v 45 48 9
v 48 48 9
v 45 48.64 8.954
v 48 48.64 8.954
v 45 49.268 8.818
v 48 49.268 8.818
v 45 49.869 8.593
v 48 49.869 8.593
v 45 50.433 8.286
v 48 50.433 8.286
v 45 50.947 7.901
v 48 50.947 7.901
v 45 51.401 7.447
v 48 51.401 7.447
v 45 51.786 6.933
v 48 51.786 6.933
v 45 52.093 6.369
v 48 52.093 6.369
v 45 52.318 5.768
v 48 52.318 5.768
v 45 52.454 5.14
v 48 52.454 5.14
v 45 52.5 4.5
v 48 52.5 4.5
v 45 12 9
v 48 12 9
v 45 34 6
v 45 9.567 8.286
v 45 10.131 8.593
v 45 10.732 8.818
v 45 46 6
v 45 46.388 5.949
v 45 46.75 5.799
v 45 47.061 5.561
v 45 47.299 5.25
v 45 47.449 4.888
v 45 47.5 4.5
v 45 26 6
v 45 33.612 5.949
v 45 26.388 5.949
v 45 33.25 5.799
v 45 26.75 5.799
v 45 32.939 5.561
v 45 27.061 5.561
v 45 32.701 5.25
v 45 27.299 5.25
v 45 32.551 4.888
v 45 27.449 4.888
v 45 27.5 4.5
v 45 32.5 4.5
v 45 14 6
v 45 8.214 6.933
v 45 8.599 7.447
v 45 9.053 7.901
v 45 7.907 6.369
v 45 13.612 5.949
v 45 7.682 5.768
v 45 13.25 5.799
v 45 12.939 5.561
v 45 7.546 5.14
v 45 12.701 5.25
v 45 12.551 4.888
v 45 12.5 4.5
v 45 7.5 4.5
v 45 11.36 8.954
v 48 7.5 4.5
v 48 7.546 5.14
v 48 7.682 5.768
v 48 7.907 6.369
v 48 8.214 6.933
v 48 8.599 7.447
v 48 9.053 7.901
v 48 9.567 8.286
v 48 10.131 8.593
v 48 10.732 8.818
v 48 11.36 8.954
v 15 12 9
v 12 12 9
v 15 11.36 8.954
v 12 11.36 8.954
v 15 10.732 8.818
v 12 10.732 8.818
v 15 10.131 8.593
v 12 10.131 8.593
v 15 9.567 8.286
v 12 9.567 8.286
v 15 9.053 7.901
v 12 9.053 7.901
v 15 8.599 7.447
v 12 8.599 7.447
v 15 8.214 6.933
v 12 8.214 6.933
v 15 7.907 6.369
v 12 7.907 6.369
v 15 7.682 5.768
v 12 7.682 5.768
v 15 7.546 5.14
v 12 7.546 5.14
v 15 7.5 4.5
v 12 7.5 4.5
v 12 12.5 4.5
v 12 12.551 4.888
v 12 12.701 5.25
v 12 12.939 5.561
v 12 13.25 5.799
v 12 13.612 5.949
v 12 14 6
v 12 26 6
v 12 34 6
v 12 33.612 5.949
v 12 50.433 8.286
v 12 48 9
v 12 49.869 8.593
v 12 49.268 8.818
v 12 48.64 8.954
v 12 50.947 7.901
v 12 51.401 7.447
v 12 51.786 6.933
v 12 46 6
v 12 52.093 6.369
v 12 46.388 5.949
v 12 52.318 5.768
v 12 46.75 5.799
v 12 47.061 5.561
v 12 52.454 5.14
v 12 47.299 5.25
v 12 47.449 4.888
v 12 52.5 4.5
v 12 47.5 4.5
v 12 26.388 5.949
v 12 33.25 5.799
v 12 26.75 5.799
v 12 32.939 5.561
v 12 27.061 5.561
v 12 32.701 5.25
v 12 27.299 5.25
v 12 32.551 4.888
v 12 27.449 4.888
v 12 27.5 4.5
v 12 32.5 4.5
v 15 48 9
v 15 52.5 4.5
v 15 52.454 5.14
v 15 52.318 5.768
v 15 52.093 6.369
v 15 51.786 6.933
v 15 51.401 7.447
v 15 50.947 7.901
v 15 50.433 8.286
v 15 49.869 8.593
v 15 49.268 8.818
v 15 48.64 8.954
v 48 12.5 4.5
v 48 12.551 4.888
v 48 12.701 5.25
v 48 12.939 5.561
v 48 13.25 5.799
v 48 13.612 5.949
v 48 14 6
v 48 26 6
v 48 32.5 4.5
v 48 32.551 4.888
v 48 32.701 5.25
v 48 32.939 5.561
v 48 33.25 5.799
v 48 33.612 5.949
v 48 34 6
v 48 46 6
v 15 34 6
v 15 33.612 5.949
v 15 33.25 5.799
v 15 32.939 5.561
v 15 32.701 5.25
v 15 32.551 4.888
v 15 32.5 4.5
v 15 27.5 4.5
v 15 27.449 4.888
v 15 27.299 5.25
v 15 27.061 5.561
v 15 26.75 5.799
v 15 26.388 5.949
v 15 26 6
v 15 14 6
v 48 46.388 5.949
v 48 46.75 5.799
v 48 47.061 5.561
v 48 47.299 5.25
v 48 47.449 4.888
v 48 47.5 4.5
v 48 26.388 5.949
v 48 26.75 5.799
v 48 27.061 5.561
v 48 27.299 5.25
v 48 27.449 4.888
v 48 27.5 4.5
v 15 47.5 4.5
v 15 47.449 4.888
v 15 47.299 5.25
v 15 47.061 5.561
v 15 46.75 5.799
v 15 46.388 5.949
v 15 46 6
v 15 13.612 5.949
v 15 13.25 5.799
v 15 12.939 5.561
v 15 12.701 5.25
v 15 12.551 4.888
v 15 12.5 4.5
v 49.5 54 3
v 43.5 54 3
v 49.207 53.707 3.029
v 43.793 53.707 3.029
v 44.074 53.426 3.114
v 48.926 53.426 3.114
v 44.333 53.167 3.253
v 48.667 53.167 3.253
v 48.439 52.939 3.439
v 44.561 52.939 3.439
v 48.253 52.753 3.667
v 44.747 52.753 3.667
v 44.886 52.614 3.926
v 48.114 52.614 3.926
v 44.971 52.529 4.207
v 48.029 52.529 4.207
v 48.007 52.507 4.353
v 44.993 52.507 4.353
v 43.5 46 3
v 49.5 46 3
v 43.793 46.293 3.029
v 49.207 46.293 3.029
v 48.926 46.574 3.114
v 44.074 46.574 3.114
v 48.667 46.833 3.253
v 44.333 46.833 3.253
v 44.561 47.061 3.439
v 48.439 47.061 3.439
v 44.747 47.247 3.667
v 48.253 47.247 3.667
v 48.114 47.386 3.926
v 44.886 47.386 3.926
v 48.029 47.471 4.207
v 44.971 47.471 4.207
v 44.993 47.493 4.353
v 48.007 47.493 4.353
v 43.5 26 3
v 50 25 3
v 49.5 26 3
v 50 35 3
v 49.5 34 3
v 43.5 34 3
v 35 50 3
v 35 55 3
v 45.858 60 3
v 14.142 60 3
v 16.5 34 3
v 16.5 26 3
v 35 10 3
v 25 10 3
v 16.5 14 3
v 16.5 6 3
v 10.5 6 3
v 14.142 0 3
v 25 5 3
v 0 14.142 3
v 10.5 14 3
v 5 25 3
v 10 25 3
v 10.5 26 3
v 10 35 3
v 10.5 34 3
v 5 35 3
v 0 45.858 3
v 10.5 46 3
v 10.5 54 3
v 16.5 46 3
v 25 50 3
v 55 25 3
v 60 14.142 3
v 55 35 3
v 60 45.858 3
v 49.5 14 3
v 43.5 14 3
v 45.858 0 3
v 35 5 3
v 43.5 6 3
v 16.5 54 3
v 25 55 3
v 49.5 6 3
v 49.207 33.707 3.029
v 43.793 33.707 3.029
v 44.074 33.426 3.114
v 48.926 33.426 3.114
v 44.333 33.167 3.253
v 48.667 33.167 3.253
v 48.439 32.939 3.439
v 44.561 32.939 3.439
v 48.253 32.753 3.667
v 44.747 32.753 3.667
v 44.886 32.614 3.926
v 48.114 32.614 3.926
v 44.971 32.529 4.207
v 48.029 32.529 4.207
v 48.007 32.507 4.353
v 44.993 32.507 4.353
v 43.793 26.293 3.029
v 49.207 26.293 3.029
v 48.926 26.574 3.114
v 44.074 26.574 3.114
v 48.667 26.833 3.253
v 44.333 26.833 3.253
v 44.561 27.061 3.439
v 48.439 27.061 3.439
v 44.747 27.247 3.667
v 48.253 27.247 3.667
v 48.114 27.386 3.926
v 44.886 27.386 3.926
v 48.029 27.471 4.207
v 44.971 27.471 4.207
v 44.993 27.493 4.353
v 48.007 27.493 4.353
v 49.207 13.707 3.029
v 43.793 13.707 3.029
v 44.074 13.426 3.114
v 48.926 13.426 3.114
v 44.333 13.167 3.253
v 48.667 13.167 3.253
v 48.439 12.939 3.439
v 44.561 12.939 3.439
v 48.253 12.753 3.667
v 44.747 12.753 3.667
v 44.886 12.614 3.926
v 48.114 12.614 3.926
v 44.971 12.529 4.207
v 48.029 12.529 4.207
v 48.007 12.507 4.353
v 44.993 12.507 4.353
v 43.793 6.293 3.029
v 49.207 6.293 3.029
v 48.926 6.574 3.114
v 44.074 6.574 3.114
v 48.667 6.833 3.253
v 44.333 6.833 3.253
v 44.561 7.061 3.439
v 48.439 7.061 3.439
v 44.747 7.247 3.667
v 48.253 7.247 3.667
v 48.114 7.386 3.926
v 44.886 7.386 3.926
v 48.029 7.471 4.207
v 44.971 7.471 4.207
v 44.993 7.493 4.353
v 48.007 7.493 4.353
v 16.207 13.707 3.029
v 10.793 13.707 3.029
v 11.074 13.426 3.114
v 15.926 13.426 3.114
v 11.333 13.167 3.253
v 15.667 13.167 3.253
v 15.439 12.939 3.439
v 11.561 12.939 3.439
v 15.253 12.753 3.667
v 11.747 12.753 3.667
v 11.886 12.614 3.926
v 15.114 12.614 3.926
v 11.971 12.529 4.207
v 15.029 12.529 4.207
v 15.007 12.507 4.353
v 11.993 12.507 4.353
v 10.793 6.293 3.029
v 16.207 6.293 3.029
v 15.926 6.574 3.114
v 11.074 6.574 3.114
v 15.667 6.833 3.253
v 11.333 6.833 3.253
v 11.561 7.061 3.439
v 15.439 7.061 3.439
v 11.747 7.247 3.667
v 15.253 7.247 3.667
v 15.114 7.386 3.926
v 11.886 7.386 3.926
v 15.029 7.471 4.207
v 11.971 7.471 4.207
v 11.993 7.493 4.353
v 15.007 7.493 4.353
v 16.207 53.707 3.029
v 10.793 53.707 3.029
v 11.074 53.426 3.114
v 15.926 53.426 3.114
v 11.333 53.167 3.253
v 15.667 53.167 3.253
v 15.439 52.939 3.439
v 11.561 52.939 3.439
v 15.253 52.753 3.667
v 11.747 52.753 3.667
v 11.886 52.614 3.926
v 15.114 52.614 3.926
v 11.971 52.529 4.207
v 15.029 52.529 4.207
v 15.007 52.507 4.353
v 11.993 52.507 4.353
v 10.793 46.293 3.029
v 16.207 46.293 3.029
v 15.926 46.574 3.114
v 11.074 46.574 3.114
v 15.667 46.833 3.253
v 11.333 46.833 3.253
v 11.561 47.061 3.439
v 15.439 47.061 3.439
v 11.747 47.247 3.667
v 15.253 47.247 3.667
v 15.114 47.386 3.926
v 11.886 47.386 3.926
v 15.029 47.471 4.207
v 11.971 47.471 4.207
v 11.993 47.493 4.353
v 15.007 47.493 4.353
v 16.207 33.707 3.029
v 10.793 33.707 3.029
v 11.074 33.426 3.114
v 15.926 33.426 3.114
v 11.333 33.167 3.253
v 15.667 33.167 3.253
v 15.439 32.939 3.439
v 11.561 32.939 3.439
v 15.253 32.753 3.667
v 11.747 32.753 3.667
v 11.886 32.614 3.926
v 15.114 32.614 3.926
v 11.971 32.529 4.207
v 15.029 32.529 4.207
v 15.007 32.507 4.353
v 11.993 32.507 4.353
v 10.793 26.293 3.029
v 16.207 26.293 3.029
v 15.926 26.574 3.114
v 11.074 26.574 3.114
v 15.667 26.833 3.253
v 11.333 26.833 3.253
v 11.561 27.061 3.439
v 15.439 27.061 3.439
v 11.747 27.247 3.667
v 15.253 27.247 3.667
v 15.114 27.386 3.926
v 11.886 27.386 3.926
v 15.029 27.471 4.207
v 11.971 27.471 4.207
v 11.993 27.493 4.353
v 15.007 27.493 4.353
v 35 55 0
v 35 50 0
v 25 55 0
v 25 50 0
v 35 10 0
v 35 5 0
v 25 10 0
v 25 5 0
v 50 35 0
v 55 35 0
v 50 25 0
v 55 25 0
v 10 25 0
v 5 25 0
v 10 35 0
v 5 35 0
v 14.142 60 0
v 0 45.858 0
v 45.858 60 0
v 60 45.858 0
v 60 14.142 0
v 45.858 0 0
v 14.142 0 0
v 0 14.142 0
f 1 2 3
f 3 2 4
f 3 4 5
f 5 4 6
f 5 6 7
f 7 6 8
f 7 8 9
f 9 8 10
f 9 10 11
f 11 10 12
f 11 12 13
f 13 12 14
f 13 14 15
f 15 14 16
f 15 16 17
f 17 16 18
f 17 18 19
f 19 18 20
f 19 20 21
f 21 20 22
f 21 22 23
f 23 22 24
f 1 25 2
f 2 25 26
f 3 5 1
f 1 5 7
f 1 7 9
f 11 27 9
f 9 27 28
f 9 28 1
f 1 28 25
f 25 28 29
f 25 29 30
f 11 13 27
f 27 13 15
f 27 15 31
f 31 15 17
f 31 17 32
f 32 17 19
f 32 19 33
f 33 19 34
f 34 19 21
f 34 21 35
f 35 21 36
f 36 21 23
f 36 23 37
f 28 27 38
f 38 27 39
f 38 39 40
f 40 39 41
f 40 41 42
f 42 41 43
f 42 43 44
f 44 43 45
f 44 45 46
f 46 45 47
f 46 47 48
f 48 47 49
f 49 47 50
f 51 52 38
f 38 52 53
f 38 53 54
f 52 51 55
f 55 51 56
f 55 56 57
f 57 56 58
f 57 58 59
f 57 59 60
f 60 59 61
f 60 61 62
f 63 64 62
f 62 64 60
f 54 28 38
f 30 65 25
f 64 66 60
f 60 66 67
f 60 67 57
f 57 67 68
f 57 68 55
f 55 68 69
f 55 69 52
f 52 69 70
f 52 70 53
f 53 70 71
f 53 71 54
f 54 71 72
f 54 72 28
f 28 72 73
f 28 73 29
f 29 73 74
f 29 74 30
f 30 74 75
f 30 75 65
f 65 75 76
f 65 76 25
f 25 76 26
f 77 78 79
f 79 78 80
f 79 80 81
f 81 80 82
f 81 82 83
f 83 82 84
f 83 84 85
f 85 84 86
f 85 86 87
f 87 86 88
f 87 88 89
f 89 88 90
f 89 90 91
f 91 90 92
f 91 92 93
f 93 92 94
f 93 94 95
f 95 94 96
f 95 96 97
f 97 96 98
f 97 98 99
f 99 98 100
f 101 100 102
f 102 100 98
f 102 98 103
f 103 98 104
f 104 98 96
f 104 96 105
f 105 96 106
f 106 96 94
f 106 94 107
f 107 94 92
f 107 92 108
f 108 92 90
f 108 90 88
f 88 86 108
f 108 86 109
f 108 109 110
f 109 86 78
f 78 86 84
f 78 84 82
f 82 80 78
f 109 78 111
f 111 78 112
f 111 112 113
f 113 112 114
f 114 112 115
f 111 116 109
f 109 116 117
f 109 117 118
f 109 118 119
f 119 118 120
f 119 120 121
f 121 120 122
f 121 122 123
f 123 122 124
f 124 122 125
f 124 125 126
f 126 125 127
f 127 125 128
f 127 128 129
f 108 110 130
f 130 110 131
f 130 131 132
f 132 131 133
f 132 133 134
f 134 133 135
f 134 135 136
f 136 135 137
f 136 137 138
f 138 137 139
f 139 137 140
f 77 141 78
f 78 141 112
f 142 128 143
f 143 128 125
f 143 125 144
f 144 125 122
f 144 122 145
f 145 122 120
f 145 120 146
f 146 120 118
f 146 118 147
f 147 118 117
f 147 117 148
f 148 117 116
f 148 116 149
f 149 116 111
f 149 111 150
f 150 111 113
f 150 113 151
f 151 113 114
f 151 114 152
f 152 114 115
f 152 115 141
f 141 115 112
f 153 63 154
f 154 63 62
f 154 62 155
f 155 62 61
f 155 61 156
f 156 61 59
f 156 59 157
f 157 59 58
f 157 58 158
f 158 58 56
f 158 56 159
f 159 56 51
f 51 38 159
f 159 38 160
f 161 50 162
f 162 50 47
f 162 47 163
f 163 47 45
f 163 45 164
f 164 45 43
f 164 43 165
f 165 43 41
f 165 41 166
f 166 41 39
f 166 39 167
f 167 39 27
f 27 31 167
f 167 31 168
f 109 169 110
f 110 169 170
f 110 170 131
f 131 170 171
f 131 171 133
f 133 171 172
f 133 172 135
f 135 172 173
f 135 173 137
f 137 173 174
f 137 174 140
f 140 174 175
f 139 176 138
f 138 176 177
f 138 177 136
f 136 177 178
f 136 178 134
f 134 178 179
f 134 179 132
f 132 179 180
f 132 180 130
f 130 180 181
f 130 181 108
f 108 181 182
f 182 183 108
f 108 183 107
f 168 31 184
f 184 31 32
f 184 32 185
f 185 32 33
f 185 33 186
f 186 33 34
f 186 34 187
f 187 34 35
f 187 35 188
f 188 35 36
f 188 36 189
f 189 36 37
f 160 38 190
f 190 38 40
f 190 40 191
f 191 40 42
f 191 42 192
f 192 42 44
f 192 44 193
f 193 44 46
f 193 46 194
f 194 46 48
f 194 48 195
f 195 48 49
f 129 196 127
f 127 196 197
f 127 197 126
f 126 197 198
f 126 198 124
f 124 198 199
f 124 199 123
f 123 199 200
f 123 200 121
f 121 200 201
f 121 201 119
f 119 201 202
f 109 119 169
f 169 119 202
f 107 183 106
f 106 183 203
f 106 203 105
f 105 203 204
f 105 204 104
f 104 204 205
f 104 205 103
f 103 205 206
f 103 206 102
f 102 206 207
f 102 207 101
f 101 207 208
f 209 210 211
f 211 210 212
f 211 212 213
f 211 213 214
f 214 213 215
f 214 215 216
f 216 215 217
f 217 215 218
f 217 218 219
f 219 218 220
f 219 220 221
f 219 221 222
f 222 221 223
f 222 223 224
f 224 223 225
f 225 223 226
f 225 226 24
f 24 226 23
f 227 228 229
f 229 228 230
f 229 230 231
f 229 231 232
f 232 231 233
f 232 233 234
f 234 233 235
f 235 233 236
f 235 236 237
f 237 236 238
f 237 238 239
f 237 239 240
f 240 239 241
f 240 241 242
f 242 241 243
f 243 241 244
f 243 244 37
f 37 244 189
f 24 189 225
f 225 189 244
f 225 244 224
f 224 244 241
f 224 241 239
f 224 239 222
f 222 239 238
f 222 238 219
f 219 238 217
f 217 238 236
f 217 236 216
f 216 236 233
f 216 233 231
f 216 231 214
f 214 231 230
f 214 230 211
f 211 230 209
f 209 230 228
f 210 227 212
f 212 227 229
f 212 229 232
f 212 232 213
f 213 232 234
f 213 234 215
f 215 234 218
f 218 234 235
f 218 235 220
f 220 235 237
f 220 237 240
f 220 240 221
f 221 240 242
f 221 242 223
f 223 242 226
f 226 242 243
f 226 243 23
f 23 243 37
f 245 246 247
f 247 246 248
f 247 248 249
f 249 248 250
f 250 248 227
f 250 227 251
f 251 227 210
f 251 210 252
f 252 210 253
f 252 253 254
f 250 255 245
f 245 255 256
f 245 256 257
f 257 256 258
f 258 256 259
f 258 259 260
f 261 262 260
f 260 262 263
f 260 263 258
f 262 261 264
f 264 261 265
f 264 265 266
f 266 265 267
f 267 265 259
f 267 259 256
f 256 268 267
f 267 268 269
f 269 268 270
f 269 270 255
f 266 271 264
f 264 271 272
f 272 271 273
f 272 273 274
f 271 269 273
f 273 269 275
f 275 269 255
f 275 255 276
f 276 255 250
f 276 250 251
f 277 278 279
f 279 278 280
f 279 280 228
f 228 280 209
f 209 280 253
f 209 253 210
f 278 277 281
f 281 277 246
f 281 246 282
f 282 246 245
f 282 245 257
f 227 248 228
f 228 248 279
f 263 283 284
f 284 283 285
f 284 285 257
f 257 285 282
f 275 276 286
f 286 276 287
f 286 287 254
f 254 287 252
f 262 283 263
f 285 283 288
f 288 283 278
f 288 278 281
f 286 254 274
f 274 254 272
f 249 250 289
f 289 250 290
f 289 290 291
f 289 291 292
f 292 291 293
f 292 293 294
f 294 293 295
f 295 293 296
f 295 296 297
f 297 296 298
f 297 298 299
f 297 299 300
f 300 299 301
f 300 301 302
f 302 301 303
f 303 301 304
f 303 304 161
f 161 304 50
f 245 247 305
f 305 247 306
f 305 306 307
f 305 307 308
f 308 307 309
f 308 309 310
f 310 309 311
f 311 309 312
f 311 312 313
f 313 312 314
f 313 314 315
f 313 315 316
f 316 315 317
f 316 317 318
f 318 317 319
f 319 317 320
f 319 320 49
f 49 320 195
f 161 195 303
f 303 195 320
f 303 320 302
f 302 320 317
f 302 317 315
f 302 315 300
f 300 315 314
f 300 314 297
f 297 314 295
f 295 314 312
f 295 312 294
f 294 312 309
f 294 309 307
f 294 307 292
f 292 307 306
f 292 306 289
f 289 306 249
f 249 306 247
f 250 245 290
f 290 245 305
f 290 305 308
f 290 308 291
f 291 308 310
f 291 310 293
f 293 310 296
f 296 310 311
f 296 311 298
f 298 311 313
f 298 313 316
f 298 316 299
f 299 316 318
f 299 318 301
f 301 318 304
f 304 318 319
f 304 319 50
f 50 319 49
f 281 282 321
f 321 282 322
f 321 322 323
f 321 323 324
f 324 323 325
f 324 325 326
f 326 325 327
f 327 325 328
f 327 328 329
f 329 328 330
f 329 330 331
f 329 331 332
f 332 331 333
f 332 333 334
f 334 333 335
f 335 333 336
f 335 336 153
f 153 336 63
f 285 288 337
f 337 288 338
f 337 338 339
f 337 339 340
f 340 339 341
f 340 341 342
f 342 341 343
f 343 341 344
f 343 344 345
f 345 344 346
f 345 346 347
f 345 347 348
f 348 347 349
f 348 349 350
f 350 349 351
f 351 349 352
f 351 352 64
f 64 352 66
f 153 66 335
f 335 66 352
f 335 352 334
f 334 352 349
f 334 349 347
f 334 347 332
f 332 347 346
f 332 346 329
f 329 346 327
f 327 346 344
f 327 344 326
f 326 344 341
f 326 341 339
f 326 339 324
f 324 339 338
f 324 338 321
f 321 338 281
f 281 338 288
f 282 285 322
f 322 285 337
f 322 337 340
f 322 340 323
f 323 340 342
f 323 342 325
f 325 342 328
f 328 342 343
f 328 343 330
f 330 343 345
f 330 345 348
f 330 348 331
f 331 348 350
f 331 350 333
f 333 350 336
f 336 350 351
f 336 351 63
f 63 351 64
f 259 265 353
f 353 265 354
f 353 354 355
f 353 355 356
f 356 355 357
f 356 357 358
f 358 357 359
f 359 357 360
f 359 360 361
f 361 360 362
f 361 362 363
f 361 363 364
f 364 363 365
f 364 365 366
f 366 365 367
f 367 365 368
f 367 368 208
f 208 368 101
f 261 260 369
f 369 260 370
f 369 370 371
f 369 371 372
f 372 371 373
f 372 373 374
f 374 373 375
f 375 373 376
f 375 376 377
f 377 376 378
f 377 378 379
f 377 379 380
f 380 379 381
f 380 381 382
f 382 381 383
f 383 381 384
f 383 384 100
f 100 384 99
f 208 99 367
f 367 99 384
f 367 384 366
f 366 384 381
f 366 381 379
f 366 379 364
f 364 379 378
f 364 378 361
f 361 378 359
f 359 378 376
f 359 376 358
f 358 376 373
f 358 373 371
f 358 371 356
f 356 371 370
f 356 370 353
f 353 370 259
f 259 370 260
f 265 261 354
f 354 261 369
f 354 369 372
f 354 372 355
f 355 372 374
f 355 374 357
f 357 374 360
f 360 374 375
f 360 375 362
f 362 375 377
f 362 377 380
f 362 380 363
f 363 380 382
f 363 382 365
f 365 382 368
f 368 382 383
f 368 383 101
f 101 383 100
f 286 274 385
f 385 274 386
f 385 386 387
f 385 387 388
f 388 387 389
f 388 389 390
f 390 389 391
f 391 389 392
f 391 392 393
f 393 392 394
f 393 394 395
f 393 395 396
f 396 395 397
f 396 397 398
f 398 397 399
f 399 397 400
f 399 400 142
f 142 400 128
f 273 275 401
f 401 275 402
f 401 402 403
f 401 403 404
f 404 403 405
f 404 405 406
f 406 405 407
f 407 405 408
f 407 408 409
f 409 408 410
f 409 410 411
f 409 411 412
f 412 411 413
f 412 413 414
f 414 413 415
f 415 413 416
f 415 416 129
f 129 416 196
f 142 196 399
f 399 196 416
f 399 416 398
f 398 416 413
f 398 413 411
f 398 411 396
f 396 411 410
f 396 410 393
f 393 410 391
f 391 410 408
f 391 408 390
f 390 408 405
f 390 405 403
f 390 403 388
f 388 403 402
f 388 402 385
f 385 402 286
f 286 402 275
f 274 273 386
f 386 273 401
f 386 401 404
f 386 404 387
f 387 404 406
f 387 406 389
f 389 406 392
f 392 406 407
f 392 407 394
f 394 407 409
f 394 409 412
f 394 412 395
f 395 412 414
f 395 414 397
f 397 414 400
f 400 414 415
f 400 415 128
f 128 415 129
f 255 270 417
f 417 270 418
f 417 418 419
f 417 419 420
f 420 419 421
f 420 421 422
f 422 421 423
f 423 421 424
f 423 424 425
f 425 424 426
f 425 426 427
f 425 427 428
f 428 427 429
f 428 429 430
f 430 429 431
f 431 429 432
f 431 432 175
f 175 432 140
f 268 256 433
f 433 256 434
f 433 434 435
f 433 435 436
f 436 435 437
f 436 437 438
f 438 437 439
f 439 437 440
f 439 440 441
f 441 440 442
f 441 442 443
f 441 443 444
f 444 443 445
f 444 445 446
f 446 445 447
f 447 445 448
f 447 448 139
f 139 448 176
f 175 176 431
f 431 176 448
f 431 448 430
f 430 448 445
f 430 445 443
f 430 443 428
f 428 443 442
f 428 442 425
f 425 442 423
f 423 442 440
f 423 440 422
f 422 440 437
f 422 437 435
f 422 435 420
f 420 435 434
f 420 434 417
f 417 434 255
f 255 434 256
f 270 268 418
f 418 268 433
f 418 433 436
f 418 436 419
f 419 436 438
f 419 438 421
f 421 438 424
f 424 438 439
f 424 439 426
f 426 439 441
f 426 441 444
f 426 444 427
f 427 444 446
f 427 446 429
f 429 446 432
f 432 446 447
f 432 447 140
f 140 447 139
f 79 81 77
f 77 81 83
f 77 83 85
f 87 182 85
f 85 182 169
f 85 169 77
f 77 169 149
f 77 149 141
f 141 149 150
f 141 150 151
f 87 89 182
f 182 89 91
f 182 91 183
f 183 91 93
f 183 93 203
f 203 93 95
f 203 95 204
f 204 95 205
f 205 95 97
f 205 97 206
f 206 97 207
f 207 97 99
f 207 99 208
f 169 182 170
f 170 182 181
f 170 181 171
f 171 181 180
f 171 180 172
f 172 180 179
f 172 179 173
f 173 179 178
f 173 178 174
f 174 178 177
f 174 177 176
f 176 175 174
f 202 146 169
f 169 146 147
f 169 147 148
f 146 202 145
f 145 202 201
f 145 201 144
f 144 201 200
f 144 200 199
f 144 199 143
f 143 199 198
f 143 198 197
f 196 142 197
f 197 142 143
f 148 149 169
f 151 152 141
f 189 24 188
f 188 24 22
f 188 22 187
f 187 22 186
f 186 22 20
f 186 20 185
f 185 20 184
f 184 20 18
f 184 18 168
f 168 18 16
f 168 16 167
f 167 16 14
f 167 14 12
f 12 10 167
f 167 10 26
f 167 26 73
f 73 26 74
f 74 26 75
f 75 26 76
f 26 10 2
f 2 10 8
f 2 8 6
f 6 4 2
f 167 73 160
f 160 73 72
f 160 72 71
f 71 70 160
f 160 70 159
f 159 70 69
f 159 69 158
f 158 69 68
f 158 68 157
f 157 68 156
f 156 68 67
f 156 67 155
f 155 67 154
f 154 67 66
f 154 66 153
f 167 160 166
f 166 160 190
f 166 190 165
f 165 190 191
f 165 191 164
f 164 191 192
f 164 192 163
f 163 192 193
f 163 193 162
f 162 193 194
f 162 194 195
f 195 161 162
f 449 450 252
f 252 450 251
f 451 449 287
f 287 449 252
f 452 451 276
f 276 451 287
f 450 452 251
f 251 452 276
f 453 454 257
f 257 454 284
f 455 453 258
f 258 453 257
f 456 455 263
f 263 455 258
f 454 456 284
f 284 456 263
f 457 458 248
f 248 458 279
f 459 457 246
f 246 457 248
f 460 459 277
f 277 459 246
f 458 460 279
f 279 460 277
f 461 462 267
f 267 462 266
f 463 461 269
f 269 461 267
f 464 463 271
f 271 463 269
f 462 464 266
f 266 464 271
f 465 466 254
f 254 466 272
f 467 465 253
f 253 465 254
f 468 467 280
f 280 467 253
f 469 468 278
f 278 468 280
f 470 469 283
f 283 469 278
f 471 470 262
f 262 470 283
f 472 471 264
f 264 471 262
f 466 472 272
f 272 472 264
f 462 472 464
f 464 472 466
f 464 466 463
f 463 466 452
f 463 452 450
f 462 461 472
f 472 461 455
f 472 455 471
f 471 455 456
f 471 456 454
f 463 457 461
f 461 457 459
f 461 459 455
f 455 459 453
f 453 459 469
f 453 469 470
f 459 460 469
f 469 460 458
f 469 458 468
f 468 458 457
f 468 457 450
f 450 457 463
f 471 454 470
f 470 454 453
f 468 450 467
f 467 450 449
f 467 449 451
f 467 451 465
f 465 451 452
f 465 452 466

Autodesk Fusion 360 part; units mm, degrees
sketch "Sketch1" plane through (0, 0, 0) normal (0, 0, 1) x (1, 0, 0)
  line L0 (0, 0) -> (60, 0)
  line L1 (60, 0) -> (60, 60)
  line L2 (60, 60) -> (0, 60)
  line L3 (0, 60) -> (0, 0)
  line L4 (0, 45.8579) -> (14.1421, 60)
  line L5 (0, 45.8579) -> (19.799, 45.8579) construction
  line L6 (14.1421, 0) -> (0, 14.1421)
  line L7 (14.1421, 0) -> (24.1421, 0) construction
  line L8 (60, 14.1421) -> (45.8579, 0)
  line L9 (60, 14.1421) -> (83.1045, 14.1421) construction
  line L10 (45.8579, 60) -> (60, 45.8579)
  line L11 (0, 30) -> (60, 30) construction
  line L12 (30, 60) -> (30, 0) construction
  line L13 (25, 55) -> (35, 55)
  line L14 (35, 55) -> (35, 50)
  line L15 (35, 50) -> (25, 50)
  line L16 (25, 50) -> (25, 55)
  line L17 (5, 25) -> (5, 35)
  line L18 (10, 35) -> (10, 25)
  line L19 (10, 25) -> (5, 25)
  line L20 (5, 35) -> (10, 35)
  line L21 (35, 5) -> (25, 5)
  line L22 (25, 10) -> (35, 10)
  line L23 (35, 10) -> (35, 5)
  line L24 (25, 5) -> (25, 10)
  line L25 (55, 35) -> (55, 25)
  line L26 (50, 25) -> (50, 35)
  line L27 (50, 35) -> (55, 35)
  line L28 (55, 25) -> (50, 25)
  point P0 (30, 30)
  dimension "d1" = 60
  dimension "d2" = 60
  dimension "d3" = 45
  dimension "d4" = 135
  dimension "d5" = 135
  dimension "d6" = 90
  dimension "d7" = 20
  dimension "d8" = 10
  dimension "d9" = 5
  dimension "d10" = 5
  dimension "d11" = 20
  dimension "d13" = 360
extrude "Extrude1" add sketch "Sketch1" along normal blind 3 contours L0 L1 L2 L3 L4 L6 L8 L10
sketch "Sketch2" plane through (0, 0, 3) normal (0, 0, 1) x (-1, 0, 0)
  line L0 (-5, -25) -> (-5, -35)
  line L1 (-5, -35) -> (-10, -35)
  line L2 (-10, -35) -> (-10, -25)
  line L3 (-10, -25) -> (-5, -25)
  line L4 (-55, -35) -> (-55, -25)
  line L5 (-55, -25) -> (-50, -25)
  line L6 (-50, -25) -> (-50, -35)
  line L7 (-50, -35) -> (-55, -35)
  line L8 (-35, -5) -> (-25, -5)
  line L9 (-25, -5) -> (-25, -10)
  line L10 (-25, -10) -> (-35, -10)
  line L11 (-35, -10) -> (-35, -5)
  line L12 (-35, -50) -> (-25, -50)
  line L13 (-25, -50) -> (-25, -55)
  line L14 (-25, -55) -> (-35, -55)
  line L15 (-35, -55) -> (-35, -50)
  line L16 (0, -45.8579) -> (0, -14.1421)
  line L17 (0, -14.1421) -> (-14.1421, 0)
  line L18 (-14.1421, 0) -> (-45.8579, 0)
  line L19 (-45.8579, 0) -> (-60, -14.1421)
  line L20 (-60, -14.1421) -> (-60, -45.8579)
  line L21 (-60, -45.8579) -> (-45.8579, -60)
  line L22 (-45.8579, -60) -> (-14.1421, -60)
  line L23 (-14.1421, -60) -> (0, -45.8579)
ref_plane "WorkPlane1" through (30, 0, 0) normal (1, 0, 0) x (0, 1, 0)
sketch "Sketch3" plane through (30, 0, 0) normal (1, 0, 0) x (0, 1, 0)
  line L0 (52.5, 3) -> (7.5, 3)
  line L1 (7.5, 3) -> (7.5, 9)
  line L2 (7.5, 9) -> (52.5, 9)
  line L3 (52.5, 9) -> (52.5, 3)
  line L4 (47.5, 3) -> (32.5, 3)
  line L5 (32.5, 3) -> (32.5, 6)
  line L6 (32.5, 6) -> (47.5, 6)
  line L7 (47.5, 6) -> (47.5, 3)
  line L8 (27.5, 3) -> (12.5, 3)
  line L9 (12.5, 3) -> (12.5, 6)
  line L10 (12.5, 6) -> (27.5, 6)
  line L11 (27.5, 6) -> (27.5, 3)
  line L12 (60, 3) -> (0, 3)
  line L13 (0, 3) -> (0, 0)
  line L14 (0, 0) -> (60, 0)
  line L15 (60, 0) -> (60, 3)
  point P0 (30, 0)
  dimension "d17" = 45
  dimension "d18" = 6
  dimension "d21" = 3
  dimension "d22" = 5
  dimension "d23" = 5
  dimension "d24" = 5
  dimension "d25" = 22.5
extrude "Extrude2" add sketch "Sketch3" along normal blind 3 from surface at 15 contours L0 L1 L2 L3 L5 L6 L7 L9 L10 L11 L12
extrude "Extrude3" add sketch "Sketch3" against normal blind 3 from surface at -15 contours L0 L1 L2 L3 L5 L6 L7 L9 L10 L11 L12
fillet "Fillet1" radius 1.5 24 edges at (13.5, 27.5, 3) (15, 30, 3) (13.5, 47.5, 3) (15, 50, 3) (13.5, 7.5, 3) (15, 10, 3) (46.5, 7.5, 3) (48, 10, 3) (46.5, 27.5, 3) (48, 30, 3) (46.5, 47.5, 3) (48, 50, 3) (46.5, 52.5, 3) (45, 50, 3) (46.5, 32.5, 3) (45, 30, 3) (46.5, 12.5, 3) (45, 10, 3) (13.5, 52.5, 3) (12, 50, 3) (13.5, 32.5, 3) (12, 30, 3) (13.5, 12.5, 3) (12, 10, 3)
fillet "Fillet1" radius 1.5 8 edges at (13.5, 12.5, 6) (13.5, 47.5, 6) (46.5, 27.5, 6) (46.5, 47.5, 6) (13.5, 27.5, 6) (13.5, 32.5, 6) (46.5, 32.5, 6) (46.5, 12.5, 6)
fillet "Fillet1" radius 4.5 4 edges at (13.5, 52.5, 9) (13.5, 7.5, 9) (46.5, 7.5, 9) (46.5, 52.5, 9)
equation "d1 = d2"
equation "d9 = d8 / 2"
equation "d23 = d22"
equation "d24 = d22"
equation "d25 = d17 / 2"
